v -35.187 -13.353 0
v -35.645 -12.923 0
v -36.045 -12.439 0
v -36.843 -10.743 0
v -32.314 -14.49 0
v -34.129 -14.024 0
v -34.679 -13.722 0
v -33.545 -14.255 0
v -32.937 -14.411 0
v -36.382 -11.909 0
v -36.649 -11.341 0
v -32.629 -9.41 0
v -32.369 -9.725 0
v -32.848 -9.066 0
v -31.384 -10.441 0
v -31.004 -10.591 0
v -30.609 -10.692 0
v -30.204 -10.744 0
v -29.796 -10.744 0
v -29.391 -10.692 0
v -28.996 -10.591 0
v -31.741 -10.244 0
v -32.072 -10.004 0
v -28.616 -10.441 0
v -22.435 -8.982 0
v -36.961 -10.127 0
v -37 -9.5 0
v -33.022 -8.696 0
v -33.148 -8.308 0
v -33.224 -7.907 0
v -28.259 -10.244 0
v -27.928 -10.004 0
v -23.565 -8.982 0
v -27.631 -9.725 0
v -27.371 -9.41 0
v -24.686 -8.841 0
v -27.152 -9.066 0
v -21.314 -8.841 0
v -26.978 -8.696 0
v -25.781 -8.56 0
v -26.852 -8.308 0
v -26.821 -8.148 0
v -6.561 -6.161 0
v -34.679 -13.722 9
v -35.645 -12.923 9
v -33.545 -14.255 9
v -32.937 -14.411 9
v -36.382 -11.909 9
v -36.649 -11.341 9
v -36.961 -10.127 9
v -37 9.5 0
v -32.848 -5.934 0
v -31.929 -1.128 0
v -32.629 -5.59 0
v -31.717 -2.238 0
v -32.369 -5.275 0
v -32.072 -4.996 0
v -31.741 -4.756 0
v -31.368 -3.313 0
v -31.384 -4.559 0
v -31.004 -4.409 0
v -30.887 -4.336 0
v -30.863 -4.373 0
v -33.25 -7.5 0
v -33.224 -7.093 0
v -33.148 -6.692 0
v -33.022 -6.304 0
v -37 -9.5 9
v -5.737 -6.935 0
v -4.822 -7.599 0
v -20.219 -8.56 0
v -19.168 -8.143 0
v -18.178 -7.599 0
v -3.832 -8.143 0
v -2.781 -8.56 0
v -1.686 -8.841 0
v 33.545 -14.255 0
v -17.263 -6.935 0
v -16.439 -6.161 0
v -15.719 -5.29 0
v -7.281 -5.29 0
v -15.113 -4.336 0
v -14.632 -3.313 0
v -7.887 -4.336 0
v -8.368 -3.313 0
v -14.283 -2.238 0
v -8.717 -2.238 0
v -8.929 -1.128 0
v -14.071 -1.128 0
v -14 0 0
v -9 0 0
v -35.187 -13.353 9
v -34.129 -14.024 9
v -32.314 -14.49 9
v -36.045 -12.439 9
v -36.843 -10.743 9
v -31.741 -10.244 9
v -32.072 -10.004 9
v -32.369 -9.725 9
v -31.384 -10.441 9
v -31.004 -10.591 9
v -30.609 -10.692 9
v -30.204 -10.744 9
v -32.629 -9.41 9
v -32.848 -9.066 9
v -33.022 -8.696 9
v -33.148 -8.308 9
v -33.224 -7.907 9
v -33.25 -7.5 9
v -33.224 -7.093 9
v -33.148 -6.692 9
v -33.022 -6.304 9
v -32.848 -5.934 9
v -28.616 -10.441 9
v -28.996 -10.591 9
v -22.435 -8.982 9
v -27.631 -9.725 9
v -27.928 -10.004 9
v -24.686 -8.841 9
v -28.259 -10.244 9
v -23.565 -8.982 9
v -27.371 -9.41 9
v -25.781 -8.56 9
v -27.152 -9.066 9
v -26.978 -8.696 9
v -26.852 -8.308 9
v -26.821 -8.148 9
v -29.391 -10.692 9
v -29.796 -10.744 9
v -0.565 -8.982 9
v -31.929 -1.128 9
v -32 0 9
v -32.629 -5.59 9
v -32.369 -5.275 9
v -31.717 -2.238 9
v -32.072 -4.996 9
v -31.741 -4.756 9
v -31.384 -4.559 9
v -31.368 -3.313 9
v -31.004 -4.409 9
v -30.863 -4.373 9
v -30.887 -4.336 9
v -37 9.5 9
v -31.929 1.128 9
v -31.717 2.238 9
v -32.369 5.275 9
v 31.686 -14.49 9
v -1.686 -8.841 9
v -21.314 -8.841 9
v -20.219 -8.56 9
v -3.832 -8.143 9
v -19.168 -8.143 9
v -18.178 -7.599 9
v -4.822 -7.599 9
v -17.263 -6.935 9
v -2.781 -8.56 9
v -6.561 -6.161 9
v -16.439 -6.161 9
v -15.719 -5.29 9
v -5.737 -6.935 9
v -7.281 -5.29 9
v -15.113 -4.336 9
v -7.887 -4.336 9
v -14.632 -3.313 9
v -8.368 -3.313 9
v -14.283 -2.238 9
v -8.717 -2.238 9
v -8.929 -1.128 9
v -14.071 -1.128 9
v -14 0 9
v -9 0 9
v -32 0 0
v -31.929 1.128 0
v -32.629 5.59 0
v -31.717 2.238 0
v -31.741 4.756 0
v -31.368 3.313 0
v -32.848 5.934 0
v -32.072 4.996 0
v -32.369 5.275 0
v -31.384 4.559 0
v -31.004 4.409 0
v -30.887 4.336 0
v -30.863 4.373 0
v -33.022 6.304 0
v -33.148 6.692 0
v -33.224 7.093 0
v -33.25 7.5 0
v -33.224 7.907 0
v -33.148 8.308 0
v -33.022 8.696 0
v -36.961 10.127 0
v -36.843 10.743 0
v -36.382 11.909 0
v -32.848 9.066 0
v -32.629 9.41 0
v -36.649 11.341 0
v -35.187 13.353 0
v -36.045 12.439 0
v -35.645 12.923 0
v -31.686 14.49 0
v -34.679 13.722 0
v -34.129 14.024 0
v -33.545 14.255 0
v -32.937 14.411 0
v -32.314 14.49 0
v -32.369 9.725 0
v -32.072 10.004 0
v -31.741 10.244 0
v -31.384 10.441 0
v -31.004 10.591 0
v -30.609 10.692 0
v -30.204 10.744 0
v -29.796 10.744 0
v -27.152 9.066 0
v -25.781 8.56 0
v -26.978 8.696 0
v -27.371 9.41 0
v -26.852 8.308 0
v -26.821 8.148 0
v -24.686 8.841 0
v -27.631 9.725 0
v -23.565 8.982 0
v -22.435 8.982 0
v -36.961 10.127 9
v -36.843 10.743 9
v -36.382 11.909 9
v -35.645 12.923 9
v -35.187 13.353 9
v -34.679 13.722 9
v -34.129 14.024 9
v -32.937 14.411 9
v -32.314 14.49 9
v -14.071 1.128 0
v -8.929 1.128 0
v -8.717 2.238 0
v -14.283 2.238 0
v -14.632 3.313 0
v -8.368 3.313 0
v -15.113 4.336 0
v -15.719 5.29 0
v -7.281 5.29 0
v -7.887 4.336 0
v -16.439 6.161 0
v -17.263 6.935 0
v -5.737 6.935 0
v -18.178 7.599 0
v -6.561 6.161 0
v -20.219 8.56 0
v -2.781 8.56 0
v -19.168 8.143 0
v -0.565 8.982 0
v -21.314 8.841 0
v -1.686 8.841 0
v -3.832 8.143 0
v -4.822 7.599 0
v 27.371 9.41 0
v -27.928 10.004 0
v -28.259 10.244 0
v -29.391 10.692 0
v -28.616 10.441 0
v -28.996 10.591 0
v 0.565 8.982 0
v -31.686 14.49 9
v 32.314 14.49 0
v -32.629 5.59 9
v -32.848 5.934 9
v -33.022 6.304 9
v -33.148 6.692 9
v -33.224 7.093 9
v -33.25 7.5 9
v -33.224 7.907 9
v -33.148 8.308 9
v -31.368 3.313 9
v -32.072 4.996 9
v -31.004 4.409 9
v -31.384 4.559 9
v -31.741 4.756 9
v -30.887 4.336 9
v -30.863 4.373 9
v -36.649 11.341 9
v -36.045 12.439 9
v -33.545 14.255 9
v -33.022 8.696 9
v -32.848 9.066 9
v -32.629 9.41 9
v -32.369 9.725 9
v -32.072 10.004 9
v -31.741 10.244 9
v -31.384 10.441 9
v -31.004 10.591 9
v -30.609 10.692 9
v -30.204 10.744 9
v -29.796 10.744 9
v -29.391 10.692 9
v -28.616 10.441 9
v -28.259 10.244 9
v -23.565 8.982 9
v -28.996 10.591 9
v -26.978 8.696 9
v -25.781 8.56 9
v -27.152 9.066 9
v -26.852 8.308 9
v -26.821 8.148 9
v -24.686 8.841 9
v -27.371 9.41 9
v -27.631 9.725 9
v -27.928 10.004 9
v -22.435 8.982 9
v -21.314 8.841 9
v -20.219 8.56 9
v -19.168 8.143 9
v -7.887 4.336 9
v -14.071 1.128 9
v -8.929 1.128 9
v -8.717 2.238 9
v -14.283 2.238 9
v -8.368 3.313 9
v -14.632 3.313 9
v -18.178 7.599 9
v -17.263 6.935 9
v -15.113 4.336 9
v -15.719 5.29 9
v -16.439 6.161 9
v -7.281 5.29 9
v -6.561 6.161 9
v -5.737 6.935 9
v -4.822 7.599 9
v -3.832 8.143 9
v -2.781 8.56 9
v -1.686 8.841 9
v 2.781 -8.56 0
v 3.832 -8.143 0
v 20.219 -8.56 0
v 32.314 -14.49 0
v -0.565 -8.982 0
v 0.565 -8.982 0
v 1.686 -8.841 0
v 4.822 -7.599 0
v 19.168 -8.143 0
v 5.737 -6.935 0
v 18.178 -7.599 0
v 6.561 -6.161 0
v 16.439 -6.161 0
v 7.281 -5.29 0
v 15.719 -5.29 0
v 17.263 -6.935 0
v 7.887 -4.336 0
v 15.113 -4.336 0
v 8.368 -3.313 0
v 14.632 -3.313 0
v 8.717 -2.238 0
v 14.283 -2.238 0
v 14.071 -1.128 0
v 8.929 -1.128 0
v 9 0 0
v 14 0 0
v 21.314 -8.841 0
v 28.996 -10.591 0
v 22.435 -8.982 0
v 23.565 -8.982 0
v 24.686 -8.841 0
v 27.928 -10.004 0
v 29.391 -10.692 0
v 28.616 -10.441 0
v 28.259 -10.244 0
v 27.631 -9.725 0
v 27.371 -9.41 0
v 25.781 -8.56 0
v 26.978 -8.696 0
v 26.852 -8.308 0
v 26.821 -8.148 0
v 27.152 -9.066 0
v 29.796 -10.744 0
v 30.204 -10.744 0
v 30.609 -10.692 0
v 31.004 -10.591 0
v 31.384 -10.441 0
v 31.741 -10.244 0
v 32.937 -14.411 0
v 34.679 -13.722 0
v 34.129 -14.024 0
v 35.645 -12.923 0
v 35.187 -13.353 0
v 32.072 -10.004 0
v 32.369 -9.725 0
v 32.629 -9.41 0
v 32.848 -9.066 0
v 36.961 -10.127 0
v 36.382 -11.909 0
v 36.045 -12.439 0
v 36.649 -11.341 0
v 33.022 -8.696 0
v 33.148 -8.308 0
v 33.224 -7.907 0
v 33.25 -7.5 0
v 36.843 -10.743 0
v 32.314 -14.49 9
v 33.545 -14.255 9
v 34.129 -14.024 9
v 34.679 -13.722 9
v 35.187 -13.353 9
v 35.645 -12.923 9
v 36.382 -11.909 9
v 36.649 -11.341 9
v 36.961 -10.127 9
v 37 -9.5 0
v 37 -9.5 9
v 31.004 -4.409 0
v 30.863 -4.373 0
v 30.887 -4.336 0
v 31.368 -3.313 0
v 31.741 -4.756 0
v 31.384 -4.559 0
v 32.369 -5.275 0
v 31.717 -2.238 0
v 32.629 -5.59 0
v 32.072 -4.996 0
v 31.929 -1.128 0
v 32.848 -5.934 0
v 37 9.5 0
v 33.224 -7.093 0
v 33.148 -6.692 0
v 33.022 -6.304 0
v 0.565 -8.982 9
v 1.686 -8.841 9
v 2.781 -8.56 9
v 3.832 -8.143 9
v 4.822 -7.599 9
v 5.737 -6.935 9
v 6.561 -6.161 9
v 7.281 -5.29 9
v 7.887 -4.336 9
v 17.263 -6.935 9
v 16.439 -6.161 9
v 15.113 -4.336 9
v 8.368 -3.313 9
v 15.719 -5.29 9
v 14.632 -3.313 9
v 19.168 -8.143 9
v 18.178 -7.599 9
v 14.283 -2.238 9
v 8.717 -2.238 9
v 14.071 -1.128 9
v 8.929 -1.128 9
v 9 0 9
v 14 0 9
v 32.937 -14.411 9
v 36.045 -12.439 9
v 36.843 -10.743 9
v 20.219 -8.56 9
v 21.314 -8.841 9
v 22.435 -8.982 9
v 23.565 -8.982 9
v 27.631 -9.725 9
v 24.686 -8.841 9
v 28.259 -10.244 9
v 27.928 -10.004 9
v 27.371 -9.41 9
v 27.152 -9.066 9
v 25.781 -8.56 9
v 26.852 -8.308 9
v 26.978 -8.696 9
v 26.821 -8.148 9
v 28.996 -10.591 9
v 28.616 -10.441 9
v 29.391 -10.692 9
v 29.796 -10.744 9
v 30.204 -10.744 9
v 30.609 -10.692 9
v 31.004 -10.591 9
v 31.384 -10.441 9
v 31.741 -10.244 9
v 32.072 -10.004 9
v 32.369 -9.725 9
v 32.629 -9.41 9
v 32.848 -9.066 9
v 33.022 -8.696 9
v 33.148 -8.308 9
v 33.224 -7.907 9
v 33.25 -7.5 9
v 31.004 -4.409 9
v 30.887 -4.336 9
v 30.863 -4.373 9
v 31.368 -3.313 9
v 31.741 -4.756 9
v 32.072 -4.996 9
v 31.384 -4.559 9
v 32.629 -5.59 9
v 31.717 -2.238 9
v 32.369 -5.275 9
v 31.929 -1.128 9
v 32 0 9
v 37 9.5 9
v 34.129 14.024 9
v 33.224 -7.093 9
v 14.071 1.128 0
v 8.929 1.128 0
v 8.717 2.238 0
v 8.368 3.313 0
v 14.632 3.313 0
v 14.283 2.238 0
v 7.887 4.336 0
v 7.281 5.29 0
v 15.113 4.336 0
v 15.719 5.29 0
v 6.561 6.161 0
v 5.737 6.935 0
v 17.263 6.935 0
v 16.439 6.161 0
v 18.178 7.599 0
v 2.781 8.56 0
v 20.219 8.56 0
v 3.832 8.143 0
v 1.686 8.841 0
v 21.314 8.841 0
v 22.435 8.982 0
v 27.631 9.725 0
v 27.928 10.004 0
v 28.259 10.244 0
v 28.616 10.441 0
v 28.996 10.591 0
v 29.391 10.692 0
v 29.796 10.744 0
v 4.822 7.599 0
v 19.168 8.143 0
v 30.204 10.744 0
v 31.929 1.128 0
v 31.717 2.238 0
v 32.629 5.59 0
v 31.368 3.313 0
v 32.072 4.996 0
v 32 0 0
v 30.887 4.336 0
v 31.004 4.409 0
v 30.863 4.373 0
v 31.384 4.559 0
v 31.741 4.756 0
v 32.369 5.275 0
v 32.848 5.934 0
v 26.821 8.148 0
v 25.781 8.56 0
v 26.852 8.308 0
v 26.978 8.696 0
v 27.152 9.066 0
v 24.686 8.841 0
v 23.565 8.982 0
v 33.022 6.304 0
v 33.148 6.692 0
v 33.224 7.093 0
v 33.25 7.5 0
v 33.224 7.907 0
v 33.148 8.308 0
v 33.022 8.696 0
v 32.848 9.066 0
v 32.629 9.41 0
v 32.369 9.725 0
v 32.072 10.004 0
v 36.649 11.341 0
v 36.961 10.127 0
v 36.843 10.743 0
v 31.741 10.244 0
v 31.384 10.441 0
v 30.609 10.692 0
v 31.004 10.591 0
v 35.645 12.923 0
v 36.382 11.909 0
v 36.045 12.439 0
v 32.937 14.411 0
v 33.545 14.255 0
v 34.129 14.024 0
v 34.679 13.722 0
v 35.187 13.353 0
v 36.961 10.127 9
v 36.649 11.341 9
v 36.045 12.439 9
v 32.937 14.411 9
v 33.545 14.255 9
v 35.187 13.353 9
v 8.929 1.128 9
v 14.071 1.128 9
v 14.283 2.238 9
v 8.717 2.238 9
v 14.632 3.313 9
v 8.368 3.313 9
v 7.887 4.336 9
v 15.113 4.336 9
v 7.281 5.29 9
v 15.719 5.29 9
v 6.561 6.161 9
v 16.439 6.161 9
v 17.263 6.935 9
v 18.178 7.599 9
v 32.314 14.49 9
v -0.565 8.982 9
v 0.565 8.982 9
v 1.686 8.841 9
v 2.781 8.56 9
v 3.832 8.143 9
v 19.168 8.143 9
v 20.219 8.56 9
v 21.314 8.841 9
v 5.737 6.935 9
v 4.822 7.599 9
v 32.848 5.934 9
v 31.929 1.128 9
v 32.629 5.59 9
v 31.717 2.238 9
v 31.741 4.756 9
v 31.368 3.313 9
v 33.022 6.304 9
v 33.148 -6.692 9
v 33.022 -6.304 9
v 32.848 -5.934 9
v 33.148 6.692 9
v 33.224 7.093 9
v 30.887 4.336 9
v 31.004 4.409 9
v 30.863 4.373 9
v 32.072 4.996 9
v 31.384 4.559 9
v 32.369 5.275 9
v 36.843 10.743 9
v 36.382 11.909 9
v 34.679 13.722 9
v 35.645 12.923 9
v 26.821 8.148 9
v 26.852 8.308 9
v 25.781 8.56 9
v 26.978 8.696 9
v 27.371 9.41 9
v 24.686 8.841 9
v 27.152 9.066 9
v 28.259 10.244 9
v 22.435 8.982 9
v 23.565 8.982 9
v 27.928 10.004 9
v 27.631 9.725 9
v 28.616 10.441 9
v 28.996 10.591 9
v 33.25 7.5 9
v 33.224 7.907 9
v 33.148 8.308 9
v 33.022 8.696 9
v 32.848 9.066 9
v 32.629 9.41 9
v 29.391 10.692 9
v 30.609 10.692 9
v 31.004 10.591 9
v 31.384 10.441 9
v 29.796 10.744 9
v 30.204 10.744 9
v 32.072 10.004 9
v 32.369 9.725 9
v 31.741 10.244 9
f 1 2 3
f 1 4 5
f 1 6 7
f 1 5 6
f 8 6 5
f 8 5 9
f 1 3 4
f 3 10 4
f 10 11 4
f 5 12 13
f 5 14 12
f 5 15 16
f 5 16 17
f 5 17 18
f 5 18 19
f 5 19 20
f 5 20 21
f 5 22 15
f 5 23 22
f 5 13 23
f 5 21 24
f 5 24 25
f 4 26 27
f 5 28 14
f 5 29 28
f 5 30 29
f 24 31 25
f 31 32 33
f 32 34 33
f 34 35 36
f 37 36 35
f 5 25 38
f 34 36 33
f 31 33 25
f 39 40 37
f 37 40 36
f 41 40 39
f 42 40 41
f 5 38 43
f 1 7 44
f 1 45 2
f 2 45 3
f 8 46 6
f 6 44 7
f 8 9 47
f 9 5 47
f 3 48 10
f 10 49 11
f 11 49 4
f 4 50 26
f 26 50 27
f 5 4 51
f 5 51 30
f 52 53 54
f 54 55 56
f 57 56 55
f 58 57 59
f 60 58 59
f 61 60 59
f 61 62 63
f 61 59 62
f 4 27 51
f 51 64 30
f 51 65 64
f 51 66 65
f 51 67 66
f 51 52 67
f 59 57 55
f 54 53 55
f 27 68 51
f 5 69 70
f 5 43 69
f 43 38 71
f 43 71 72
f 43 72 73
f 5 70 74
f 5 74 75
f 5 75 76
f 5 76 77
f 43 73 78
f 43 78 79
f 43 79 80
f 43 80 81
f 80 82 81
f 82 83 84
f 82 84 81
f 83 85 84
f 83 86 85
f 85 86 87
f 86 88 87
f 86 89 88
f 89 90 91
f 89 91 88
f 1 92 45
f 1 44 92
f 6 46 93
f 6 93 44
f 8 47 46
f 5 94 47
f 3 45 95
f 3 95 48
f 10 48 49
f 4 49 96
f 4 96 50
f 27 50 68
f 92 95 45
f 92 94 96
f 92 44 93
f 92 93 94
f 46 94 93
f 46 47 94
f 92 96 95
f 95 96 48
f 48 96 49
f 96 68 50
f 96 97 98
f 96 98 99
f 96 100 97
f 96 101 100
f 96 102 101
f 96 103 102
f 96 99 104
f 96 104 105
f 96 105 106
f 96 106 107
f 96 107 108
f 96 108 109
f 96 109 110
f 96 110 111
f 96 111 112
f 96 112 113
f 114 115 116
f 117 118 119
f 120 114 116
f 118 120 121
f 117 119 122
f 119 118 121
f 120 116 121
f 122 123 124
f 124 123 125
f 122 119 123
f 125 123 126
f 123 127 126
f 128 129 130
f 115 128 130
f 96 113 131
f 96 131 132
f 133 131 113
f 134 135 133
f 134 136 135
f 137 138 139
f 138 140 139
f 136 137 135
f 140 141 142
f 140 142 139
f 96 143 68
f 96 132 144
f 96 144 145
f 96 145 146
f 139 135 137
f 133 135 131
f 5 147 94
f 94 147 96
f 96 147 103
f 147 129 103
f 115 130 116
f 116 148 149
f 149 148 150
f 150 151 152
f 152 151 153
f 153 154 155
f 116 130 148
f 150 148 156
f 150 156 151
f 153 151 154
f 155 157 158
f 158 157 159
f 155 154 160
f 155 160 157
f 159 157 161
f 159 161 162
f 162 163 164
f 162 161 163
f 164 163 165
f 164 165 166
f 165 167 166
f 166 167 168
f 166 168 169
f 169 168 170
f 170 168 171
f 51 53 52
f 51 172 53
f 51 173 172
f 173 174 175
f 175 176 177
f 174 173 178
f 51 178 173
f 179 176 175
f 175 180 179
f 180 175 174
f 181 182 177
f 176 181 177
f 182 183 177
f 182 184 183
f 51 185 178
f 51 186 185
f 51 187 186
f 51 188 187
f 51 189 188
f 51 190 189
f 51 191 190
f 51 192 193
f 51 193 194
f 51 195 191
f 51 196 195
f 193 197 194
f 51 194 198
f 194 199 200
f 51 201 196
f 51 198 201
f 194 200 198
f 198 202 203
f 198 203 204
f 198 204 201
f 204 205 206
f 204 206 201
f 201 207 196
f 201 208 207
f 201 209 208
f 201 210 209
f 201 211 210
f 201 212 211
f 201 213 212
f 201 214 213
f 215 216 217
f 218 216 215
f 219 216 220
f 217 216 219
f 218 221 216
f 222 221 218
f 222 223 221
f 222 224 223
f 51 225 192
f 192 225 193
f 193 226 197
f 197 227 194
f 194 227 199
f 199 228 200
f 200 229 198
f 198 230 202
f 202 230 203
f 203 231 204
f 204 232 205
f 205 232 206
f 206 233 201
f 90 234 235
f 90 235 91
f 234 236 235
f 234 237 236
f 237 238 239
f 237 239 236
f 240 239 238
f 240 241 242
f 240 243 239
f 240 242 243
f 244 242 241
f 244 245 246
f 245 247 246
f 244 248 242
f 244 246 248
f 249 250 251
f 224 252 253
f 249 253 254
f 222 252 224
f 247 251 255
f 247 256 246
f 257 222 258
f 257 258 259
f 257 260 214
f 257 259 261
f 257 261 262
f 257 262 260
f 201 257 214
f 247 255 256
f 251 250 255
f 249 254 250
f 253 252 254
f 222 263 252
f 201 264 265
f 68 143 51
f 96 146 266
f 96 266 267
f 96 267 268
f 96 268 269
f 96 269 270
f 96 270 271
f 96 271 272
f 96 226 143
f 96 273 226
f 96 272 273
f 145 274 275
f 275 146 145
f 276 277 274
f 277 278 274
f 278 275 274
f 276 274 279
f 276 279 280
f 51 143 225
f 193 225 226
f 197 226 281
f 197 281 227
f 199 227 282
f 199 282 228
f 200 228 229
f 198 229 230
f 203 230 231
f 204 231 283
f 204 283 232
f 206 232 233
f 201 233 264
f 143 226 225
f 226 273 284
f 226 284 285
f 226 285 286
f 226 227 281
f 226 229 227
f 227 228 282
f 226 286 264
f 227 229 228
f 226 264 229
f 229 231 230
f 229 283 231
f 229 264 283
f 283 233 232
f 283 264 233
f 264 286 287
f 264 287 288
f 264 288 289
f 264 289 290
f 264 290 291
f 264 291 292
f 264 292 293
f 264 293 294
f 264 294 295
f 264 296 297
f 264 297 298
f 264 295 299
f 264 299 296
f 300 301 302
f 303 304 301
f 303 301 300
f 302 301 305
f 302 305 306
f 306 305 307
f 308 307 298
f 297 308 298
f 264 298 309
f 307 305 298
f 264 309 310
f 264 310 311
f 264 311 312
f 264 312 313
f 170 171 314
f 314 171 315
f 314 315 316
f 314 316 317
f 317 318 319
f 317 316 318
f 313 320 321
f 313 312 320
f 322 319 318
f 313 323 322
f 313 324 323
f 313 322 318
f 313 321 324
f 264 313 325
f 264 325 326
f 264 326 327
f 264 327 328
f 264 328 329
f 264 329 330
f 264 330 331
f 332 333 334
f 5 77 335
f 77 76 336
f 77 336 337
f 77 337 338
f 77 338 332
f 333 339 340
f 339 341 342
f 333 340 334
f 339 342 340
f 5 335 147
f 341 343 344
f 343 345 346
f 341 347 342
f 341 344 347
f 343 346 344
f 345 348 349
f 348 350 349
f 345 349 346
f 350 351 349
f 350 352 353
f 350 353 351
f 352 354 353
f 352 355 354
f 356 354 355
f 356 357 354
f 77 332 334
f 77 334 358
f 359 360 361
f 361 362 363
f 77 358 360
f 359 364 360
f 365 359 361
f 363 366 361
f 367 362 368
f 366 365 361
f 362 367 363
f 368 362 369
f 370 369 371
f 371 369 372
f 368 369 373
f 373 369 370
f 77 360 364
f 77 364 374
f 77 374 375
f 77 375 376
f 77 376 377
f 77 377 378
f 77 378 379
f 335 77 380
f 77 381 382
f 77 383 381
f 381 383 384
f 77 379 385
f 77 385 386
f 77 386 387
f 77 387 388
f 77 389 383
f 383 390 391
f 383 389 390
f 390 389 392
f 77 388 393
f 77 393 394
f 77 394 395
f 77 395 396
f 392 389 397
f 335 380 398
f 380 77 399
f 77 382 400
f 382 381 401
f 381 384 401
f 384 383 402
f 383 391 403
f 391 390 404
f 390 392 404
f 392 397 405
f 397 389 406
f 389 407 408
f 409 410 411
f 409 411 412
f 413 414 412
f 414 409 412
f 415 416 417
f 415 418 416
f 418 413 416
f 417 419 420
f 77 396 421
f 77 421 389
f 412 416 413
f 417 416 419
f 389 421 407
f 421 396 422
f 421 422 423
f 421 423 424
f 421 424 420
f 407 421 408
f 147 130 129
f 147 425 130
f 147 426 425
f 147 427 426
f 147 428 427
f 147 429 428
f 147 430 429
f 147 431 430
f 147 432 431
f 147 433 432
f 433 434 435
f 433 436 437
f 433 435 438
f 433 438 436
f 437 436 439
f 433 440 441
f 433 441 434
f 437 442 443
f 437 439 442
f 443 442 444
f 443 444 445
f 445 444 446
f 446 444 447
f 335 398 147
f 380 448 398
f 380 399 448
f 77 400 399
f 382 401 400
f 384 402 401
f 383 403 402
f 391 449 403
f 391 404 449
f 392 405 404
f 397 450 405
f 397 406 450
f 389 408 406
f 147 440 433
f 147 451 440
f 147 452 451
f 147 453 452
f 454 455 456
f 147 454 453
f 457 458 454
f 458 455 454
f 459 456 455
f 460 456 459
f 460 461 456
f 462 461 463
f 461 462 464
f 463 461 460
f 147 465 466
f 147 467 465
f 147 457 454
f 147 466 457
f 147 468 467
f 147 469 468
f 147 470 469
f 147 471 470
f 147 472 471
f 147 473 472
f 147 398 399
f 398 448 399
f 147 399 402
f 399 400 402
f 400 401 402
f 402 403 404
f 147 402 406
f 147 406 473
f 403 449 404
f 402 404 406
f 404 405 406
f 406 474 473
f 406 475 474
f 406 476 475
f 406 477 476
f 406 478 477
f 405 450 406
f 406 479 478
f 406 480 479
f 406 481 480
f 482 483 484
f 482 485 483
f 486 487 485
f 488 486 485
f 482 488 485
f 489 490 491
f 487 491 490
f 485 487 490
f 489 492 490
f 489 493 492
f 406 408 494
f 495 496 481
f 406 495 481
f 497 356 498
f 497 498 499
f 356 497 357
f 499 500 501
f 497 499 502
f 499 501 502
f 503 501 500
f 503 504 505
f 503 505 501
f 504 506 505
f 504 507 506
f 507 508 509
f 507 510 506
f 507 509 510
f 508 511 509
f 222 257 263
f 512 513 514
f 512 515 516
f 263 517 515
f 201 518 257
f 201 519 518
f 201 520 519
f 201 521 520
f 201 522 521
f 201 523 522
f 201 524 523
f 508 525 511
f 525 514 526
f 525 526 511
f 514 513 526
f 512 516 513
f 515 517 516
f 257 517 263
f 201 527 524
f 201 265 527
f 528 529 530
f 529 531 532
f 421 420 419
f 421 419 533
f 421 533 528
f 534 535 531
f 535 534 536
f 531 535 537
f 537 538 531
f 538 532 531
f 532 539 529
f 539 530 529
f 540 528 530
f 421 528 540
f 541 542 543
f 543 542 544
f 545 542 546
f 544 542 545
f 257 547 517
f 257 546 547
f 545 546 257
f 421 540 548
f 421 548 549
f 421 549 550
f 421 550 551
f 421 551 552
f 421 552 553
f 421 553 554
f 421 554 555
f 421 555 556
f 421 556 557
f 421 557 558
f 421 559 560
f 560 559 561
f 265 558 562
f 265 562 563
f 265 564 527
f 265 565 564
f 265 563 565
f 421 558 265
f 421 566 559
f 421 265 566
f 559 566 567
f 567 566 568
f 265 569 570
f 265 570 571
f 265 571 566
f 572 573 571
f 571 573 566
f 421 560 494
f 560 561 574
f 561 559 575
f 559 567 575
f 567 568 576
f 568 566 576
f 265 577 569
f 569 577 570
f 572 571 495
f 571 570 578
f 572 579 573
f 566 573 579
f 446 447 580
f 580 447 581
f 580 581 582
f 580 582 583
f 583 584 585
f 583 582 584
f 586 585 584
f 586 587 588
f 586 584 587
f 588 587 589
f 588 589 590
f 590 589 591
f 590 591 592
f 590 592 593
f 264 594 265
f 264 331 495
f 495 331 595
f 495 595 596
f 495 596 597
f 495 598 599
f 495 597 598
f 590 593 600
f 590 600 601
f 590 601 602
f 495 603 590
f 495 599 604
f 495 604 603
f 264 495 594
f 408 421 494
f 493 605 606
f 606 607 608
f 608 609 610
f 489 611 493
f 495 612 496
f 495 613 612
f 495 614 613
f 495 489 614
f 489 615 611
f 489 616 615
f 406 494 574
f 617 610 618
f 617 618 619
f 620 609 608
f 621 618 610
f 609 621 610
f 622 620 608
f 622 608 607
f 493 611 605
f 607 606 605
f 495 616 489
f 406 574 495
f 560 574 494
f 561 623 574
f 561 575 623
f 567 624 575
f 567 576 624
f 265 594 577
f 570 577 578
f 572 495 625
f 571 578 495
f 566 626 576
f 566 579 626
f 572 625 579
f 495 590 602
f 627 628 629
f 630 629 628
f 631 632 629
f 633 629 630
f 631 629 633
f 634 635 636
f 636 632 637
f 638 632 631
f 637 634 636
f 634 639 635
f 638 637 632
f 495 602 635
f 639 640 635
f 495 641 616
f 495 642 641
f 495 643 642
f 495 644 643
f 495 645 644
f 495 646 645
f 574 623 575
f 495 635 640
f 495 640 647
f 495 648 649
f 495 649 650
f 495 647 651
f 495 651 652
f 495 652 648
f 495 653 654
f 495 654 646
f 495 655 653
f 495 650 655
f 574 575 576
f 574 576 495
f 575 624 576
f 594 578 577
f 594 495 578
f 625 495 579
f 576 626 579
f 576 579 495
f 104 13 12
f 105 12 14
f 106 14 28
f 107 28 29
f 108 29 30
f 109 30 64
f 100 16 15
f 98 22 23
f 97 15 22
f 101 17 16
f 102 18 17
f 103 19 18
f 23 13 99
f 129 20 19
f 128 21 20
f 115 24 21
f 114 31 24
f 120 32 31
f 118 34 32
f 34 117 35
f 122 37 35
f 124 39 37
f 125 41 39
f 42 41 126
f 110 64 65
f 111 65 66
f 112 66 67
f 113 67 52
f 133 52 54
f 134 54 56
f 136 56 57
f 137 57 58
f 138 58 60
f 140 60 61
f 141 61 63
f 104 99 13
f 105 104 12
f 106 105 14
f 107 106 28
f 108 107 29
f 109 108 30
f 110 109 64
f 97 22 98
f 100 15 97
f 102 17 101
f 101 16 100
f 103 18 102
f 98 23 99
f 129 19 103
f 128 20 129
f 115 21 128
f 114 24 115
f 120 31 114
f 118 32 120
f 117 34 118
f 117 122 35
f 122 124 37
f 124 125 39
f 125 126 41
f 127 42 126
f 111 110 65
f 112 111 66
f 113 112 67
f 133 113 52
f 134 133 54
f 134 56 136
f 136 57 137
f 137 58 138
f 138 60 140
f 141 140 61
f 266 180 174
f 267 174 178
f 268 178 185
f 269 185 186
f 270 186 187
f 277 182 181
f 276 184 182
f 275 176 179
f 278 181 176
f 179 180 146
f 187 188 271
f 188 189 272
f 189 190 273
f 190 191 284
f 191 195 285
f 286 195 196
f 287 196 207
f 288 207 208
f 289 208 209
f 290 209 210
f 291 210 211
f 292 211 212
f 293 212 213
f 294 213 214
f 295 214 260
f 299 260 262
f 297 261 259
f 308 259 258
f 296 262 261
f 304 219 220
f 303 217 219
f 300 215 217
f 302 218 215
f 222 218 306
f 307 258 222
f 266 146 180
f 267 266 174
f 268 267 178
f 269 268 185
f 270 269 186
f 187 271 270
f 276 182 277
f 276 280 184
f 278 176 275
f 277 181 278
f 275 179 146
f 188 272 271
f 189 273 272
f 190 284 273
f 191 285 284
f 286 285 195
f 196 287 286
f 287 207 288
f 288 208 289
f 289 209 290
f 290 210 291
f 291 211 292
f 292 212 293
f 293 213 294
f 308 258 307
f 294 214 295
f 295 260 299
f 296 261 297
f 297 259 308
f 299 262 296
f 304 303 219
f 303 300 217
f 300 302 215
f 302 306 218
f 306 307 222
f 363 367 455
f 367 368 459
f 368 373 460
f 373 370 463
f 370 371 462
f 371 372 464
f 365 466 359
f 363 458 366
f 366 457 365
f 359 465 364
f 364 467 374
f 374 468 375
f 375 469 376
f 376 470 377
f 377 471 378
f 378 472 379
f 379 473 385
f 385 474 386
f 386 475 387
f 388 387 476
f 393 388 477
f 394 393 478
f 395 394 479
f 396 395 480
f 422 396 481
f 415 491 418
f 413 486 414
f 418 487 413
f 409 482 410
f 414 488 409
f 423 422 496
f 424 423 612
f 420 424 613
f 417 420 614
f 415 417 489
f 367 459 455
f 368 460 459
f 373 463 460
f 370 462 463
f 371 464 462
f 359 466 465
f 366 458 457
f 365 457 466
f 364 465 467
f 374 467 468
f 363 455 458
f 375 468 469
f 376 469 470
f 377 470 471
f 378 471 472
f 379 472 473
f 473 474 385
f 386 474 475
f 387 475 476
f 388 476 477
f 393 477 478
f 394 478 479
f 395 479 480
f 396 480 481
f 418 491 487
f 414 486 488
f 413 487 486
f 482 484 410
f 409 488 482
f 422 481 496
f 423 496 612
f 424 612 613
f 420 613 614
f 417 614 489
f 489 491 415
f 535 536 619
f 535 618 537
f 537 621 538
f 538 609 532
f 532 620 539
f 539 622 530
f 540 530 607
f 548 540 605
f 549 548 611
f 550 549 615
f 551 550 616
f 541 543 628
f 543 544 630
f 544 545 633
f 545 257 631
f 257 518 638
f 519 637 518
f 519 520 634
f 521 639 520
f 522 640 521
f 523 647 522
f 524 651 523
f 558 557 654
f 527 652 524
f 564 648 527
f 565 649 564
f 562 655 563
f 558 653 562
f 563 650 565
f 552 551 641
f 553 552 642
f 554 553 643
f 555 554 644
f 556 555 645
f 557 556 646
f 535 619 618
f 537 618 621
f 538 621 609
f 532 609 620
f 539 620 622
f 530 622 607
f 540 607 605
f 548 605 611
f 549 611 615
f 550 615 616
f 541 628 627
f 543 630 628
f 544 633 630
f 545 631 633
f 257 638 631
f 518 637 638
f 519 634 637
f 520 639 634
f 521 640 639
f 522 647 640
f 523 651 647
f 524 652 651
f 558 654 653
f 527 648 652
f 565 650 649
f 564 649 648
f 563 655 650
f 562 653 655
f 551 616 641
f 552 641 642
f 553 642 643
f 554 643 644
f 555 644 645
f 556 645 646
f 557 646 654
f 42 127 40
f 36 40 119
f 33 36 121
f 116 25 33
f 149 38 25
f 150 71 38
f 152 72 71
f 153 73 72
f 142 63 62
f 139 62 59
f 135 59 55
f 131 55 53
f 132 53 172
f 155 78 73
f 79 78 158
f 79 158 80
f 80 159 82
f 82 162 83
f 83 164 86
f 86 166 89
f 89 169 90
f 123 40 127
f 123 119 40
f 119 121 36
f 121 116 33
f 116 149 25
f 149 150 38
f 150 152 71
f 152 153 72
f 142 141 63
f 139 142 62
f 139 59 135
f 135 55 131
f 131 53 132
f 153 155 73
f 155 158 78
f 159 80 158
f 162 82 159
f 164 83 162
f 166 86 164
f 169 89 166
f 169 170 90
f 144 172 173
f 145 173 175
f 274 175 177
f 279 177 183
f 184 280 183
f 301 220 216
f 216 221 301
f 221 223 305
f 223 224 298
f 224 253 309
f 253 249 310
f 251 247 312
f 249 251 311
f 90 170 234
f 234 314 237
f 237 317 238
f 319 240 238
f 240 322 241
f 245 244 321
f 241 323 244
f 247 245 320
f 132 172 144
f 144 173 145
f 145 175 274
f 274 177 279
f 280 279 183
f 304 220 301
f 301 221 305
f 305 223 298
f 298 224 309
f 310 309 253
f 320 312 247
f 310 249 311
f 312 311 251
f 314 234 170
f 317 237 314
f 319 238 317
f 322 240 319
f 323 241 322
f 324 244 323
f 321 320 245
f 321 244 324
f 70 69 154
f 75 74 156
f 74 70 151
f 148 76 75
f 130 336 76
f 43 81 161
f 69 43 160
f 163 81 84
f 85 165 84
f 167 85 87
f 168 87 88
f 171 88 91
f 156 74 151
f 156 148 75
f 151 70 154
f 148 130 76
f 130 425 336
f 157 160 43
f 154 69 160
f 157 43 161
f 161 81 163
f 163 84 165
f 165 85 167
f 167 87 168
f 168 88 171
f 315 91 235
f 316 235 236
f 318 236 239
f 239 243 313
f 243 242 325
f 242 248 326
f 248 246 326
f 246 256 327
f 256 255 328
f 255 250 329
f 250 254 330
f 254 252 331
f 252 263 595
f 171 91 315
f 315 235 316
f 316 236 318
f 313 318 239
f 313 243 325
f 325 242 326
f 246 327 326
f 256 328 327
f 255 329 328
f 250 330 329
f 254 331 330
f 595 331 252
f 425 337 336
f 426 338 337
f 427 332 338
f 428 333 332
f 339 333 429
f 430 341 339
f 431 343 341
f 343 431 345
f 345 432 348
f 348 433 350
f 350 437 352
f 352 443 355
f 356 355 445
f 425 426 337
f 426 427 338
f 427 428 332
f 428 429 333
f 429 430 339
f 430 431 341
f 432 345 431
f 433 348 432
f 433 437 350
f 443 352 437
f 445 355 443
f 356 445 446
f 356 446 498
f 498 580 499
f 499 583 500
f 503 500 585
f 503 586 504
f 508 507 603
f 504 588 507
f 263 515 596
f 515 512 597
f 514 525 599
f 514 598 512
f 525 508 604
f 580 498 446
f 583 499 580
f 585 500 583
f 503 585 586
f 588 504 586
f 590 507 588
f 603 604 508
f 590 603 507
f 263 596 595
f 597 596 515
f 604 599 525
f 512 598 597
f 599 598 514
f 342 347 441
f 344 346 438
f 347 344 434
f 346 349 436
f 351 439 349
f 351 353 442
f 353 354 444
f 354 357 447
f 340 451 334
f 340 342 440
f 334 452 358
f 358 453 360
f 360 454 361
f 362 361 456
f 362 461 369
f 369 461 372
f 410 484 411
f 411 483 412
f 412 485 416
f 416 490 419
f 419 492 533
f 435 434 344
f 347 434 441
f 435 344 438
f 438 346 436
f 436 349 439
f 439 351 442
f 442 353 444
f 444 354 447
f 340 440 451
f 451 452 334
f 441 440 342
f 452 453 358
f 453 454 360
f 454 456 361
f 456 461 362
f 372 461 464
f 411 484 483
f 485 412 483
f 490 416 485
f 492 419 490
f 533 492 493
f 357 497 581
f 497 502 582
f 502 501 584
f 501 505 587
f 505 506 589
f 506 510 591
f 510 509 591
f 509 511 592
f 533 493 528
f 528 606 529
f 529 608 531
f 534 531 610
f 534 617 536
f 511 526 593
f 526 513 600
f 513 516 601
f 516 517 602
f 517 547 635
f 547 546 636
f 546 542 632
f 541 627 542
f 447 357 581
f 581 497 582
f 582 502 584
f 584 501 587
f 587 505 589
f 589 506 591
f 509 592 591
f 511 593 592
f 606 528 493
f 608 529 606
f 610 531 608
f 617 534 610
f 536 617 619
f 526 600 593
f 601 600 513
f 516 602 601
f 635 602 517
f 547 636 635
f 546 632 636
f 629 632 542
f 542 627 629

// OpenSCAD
$fn = 50;

difference() {
	union() {
		hull() {
			translate(v = [-32.0, 9.5, 0]) {
				cylinder(h = 9, r = 5);
			}
			translate(v = [32.0, 9.5, 0]) {
				cylinder(h = 9, r = 5);
			}
			translate(v = [-32.0, -9.5, 0]) {
				cylinder(h = 9, r = 5);
			}
			translate(v = [32.0, -9.5, 0]) {
				cylinder(h = 9, r = 5);
			}
		}
	}
	union() {
		translate(v = [-30.0, -7.5, -100.0]) {
			cylinder(h = 200, r = 3.25);
		}
		translate(v = [-30.0, 7.5, -100.0]) {
			cylinder(h = 200, r = 3.25);
		}
		translate(v = [30.0, -7.5, -100.0]) {
			cylinder(h = 200, r = 3.25);
		}
		translate(v = [30.0, 7.5, -100.0]) {
			cylinder(h = 200, r = 3.25);
		}
		translate(v = [-30.0, -7.5, -100.0]) {
			cylinder(h = 200, r = 1.8);
		}
		translate(v = [-30.0, 7.5, -100.0]) {
			cylinder(h = 200, r = 1.8);
		}
		translate(v = [30.0, -7.5, -100.0]) {
			cylinder(h = 200, r = 1.8);
		}
		translate(v = [30.0, 7.5, -100.0]) {
			cylinder(h = 200, r = 1.8);
		}
		translate(v = [-23.0, 0, 0.0]) {
			cylinder(h = 9, r = 9.0);
		}
		cylinder(h = 9, r = 9.0);
		translate(v = [23.0, 0, 0.0]) {
			cylinder(h = 9, r = 9.0);
		}
	}
}
